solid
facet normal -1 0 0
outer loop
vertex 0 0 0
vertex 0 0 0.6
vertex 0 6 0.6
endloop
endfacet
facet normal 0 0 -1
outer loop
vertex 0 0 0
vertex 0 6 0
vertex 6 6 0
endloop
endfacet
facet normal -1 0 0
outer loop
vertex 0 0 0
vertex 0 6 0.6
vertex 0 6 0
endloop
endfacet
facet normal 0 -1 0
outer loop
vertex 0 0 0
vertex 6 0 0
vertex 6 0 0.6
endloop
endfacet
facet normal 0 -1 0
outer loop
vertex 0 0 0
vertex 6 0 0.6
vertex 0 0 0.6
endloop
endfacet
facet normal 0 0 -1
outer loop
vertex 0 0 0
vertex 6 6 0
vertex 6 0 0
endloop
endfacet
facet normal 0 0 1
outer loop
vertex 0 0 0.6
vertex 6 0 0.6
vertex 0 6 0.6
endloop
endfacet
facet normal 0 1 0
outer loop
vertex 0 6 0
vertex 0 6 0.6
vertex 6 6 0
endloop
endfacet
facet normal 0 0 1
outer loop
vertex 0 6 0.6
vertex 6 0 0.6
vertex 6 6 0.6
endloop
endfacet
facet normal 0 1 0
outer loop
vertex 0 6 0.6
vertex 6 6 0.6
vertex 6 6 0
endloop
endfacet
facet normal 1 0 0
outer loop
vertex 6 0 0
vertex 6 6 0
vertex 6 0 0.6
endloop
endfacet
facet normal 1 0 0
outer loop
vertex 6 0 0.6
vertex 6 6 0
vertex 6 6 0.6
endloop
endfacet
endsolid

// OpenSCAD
/* Warning, this is a very basic generator with a lot of approximation 
input data : [UQFN, R7B, 6x6x0.6mm, 56, , A, C04-21373A]
generated by com.zoubworld.electronics.cad.model3d.Basic
Date : Sun Feb 15 10:50:49 CET 2026
*/

//body
color("black")
translate([0,0,0])
cube([6.0,6.0,0.6], center=false);
